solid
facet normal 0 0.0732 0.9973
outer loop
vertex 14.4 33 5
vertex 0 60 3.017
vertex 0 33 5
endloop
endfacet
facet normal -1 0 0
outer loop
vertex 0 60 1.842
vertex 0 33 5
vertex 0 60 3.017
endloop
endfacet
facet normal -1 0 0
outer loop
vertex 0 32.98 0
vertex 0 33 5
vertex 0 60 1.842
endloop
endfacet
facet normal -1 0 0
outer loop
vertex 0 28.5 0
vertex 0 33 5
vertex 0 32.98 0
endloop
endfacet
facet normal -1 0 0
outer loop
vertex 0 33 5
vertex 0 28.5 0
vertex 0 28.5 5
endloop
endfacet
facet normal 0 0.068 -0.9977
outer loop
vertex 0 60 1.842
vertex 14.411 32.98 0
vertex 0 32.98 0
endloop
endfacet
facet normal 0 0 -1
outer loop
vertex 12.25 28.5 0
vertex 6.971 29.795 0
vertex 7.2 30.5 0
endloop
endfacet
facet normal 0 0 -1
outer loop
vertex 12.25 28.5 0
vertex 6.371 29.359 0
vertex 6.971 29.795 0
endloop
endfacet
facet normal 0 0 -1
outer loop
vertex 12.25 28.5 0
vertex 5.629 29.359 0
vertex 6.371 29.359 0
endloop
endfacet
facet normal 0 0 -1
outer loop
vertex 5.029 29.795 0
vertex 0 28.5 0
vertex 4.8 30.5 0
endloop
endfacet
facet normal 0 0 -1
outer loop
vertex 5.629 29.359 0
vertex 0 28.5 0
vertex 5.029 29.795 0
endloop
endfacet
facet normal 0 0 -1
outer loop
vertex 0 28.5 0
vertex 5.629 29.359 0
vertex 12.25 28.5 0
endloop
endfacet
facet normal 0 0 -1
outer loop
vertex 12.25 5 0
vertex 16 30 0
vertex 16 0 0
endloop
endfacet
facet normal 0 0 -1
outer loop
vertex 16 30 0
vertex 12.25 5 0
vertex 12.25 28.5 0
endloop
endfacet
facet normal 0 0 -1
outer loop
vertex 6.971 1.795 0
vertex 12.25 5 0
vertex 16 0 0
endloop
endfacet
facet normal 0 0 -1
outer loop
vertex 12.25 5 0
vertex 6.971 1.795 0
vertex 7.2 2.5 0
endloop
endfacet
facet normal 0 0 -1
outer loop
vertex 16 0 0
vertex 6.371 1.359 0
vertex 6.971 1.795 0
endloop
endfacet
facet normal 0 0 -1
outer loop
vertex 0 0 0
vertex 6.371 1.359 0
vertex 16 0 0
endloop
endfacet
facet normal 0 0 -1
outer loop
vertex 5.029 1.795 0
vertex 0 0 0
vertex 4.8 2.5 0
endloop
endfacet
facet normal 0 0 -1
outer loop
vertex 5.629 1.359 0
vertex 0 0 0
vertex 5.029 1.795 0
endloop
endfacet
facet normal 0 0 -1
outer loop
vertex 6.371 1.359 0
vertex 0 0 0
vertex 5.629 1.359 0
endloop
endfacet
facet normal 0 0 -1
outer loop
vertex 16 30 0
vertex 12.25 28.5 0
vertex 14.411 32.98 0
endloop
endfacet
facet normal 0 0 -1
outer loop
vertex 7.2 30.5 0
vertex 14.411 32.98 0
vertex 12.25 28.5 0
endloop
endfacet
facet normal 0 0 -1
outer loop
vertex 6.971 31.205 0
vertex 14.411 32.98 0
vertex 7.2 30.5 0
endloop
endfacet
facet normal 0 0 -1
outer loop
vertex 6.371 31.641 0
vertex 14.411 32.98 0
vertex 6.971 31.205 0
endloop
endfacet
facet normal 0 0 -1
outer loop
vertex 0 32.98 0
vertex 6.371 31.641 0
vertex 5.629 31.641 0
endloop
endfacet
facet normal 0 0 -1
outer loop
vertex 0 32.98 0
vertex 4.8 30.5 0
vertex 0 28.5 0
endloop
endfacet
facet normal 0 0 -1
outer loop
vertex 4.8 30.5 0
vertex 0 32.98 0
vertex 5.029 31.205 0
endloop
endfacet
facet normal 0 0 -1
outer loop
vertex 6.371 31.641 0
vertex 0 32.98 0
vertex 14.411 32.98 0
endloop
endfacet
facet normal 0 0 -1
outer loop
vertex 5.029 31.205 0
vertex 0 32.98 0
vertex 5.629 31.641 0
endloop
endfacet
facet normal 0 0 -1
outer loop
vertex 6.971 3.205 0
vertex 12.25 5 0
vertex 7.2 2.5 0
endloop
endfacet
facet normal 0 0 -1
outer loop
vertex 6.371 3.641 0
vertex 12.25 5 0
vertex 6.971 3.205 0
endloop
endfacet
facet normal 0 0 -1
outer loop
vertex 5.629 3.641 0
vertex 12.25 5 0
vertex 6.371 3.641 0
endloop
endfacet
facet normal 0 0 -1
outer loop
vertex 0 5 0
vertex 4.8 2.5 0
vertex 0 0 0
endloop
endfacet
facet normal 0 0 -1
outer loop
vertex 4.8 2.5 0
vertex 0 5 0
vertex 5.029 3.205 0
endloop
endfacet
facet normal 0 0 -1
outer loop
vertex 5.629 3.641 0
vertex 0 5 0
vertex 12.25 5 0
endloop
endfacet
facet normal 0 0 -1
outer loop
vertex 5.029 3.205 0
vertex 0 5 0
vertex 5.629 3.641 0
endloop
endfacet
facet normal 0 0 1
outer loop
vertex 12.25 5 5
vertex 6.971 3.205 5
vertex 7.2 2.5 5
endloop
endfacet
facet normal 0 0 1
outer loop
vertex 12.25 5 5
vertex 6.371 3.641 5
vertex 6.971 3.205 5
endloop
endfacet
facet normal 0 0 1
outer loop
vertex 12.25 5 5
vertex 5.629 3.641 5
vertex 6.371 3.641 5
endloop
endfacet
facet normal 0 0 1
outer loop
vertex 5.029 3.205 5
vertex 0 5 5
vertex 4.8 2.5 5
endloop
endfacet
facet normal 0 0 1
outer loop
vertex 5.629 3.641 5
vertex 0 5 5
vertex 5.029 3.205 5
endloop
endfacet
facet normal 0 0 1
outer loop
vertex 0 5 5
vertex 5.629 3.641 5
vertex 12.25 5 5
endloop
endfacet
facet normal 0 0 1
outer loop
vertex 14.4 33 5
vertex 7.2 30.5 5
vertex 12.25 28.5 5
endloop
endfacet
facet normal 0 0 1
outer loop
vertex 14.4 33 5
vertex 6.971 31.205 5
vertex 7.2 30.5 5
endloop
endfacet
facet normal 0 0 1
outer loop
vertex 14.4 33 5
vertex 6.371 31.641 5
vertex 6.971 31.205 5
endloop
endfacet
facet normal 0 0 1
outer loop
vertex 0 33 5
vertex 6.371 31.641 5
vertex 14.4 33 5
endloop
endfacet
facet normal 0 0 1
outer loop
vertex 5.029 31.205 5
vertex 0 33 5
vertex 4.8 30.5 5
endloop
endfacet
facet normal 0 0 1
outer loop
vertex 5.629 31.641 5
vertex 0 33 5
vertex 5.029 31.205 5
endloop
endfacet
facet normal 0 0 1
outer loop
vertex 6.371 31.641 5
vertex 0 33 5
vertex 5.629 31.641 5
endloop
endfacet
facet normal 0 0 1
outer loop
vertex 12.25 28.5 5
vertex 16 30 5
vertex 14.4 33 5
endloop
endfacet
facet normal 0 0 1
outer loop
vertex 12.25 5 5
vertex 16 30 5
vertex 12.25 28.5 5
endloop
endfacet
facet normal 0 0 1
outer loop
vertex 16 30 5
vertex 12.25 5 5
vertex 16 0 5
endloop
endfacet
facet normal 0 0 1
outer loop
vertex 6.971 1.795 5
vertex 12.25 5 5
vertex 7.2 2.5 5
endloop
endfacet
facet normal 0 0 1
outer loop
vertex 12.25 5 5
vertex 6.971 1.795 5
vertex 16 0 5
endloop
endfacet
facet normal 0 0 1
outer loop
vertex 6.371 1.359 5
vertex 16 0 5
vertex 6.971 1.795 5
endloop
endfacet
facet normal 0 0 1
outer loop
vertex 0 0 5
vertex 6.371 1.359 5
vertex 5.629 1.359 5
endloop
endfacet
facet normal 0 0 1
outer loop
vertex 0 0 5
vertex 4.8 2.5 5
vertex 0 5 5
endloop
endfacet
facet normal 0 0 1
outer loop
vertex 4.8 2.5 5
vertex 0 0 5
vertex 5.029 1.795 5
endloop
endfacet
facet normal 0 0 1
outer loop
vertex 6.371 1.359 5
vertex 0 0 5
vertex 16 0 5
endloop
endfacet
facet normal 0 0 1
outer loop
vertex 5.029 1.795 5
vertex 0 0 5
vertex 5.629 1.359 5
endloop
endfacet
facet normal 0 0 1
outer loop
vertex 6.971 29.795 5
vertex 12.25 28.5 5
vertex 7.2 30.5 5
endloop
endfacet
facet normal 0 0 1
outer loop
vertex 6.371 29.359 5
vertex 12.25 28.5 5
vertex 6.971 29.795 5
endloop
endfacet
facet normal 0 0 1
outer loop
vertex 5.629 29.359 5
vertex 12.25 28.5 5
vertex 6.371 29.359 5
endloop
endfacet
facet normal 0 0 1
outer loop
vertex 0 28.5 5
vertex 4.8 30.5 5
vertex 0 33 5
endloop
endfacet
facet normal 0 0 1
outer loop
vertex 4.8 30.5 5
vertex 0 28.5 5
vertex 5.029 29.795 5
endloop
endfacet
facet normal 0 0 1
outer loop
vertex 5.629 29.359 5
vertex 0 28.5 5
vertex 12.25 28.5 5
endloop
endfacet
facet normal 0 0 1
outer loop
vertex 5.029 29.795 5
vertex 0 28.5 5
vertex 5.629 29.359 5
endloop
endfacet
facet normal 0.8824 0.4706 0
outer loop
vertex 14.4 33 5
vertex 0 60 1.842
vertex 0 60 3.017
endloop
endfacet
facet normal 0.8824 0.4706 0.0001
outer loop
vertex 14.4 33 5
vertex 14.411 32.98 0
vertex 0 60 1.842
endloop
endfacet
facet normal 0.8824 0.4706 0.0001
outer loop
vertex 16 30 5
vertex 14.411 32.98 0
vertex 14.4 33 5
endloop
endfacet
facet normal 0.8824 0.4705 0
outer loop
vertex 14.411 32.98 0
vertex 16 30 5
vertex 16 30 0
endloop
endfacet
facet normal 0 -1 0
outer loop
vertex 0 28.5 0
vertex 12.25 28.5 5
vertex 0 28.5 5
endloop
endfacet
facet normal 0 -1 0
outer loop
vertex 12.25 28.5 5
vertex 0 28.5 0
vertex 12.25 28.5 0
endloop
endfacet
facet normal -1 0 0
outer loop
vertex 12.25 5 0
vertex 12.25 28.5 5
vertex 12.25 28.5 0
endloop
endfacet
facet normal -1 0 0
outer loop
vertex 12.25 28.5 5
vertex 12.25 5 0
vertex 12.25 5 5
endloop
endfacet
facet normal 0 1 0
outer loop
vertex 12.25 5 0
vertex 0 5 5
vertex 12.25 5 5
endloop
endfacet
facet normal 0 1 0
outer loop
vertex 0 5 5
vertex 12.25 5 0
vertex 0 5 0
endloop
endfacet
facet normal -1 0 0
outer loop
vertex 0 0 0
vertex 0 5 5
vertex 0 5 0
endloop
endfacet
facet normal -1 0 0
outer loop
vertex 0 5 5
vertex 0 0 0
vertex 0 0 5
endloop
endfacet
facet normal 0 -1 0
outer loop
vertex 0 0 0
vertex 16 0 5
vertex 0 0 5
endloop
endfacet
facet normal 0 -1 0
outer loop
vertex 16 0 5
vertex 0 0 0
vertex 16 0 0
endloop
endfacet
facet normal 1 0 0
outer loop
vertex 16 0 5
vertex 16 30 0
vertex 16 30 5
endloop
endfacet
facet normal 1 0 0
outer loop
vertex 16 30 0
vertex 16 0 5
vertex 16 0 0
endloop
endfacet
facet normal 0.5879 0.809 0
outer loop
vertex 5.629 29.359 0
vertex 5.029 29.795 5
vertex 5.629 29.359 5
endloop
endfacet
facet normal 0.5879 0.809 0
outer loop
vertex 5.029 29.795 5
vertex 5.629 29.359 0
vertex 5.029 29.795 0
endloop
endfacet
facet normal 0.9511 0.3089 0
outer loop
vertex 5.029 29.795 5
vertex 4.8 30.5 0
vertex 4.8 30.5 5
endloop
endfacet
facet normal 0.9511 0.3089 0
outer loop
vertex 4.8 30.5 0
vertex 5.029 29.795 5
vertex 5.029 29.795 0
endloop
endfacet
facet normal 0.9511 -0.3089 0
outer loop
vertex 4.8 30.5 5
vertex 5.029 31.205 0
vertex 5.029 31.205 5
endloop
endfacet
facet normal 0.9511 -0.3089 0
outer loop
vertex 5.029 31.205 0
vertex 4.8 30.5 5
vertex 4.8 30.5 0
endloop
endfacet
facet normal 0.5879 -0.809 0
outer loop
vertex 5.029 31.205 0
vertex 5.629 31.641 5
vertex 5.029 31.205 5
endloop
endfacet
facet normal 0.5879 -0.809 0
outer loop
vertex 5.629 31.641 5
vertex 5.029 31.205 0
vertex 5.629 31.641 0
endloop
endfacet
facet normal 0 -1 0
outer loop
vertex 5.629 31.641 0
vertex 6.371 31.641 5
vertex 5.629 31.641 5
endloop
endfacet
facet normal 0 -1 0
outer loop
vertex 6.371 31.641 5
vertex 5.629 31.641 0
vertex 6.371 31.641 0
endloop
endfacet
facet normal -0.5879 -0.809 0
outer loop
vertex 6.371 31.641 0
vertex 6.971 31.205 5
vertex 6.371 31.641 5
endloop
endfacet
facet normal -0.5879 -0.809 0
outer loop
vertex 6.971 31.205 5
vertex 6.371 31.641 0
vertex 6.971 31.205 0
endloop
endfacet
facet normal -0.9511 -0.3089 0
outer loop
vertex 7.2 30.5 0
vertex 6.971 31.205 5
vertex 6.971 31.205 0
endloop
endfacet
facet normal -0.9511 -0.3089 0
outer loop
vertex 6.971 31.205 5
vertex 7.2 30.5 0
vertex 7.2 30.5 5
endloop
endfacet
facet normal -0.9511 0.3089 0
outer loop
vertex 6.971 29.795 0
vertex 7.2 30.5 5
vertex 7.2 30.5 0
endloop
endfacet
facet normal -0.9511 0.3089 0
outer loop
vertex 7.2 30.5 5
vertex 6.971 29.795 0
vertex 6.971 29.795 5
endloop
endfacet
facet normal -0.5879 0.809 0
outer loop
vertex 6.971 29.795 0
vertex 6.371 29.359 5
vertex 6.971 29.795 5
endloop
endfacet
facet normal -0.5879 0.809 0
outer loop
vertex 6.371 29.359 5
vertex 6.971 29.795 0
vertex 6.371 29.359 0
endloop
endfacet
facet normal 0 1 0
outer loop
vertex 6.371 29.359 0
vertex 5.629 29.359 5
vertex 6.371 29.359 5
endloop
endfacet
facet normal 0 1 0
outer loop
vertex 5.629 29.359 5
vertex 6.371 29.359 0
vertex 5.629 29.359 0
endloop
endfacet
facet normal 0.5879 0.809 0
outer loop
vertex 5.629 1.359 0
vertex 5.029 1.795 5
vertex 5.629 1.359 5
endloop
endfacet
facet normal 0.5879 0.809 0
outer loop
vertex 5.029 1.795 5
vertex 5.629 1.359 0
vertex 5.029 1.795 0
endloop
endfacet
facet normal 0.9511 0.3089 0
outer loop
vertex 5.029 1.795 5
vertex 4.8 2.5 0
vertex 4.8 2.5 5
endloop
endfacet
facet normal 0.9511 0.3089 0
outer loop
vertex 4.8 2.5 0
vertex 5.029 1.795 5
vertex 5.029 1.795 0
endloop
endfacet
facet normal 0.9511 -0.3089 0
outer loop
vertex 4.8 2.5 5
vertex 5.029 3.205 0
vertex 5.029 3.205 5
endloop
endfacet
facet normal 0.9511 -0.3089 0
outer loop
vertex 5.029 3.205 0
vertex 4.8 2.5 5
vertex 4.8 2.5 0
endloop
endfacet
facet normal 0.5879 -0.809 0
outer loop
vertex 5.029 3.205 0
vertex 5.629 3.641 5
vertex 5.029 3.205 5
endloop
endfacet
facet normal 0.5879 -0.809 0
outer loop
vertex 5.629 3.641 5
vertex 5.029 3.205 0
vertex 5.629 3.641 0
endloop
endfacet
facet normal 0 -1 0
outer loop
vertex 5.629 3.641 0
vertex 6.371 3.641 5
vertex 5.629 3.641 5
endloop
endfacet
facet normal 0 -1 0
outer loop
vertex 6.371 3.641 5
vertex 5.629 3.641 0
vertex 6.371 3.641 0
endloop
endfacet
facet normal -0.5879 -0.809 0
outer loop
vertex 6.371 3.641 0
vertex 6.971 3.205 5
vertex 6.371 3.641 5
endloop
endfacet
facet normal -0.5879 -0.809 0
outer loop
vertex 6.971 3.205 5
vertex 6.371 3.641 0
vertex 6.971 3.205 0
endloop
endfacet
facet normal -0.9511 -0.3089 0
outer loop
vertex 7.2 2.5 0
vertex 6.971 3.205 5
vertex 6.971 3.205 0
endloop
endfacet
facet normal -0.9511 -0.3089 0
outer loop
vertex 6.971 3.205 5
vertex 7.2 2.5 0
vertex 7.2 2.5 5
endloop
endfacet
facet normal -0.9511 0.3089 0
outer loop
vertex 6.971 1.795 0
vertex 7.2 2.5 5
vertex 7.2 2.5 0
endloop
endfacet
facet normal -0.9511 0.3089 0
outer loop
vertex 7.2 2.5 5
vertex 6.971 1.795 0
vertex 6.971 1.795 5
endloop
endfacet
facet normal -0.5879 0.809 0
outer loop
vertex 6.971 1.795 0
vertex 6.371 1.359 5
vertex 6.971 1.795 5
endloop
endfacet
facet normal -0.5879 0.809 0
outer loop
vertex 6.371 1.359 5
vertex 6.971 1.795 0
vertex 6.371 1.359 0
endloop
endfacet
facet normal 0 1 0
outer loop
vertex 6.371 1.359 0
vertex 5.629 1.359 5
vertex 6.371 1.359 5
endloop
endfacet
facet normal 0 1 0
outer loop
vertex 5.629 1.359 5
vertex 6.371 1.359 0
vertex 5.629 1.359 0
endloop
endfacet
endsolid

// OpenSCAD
//////////////////////////
// MOTOR - HOLDER
// Quality - standard
// Infill 70%
// number of shells 2
//Layer width 0.2 mm

module screws() {

    radius = 1.2;
    distance = 28;

    translate([0,0])
        circle(r=radius, $fn=10);
    translate([0,distance])
        circle(r=radius, $fn=10);
}

module body() {

    width = 12.5;
    length = 23.5;

    translate([-width/2, 2.5])
        square([width, length]);
}

module motor() {
    screws();
    body();
}

//////////////////////////
// LEG

module leg() {
    thickness = 5;
    length = 60;
    width = 16;
    points = [[0,0],[0,length],[width, length/2],[width,0]];

    linear_extrude(height=thickness)
        difference() {
            polygon(points=points);
            translate([6, 2.5])
                motor();
        }
}

module schampfer() {
    translate([0,33,5])
        rotate([-4.2,0,0])
            linear_extrude(height=5)
                square([35, 35]);
    translate([0,33.15,-5])
        rotate([3.9,0,0])
            linear_extrude(height=5)
                square([35, 35]);
}

//////////////////////////
// RENDER

difference() {
    leg();
    schampfer();
}
